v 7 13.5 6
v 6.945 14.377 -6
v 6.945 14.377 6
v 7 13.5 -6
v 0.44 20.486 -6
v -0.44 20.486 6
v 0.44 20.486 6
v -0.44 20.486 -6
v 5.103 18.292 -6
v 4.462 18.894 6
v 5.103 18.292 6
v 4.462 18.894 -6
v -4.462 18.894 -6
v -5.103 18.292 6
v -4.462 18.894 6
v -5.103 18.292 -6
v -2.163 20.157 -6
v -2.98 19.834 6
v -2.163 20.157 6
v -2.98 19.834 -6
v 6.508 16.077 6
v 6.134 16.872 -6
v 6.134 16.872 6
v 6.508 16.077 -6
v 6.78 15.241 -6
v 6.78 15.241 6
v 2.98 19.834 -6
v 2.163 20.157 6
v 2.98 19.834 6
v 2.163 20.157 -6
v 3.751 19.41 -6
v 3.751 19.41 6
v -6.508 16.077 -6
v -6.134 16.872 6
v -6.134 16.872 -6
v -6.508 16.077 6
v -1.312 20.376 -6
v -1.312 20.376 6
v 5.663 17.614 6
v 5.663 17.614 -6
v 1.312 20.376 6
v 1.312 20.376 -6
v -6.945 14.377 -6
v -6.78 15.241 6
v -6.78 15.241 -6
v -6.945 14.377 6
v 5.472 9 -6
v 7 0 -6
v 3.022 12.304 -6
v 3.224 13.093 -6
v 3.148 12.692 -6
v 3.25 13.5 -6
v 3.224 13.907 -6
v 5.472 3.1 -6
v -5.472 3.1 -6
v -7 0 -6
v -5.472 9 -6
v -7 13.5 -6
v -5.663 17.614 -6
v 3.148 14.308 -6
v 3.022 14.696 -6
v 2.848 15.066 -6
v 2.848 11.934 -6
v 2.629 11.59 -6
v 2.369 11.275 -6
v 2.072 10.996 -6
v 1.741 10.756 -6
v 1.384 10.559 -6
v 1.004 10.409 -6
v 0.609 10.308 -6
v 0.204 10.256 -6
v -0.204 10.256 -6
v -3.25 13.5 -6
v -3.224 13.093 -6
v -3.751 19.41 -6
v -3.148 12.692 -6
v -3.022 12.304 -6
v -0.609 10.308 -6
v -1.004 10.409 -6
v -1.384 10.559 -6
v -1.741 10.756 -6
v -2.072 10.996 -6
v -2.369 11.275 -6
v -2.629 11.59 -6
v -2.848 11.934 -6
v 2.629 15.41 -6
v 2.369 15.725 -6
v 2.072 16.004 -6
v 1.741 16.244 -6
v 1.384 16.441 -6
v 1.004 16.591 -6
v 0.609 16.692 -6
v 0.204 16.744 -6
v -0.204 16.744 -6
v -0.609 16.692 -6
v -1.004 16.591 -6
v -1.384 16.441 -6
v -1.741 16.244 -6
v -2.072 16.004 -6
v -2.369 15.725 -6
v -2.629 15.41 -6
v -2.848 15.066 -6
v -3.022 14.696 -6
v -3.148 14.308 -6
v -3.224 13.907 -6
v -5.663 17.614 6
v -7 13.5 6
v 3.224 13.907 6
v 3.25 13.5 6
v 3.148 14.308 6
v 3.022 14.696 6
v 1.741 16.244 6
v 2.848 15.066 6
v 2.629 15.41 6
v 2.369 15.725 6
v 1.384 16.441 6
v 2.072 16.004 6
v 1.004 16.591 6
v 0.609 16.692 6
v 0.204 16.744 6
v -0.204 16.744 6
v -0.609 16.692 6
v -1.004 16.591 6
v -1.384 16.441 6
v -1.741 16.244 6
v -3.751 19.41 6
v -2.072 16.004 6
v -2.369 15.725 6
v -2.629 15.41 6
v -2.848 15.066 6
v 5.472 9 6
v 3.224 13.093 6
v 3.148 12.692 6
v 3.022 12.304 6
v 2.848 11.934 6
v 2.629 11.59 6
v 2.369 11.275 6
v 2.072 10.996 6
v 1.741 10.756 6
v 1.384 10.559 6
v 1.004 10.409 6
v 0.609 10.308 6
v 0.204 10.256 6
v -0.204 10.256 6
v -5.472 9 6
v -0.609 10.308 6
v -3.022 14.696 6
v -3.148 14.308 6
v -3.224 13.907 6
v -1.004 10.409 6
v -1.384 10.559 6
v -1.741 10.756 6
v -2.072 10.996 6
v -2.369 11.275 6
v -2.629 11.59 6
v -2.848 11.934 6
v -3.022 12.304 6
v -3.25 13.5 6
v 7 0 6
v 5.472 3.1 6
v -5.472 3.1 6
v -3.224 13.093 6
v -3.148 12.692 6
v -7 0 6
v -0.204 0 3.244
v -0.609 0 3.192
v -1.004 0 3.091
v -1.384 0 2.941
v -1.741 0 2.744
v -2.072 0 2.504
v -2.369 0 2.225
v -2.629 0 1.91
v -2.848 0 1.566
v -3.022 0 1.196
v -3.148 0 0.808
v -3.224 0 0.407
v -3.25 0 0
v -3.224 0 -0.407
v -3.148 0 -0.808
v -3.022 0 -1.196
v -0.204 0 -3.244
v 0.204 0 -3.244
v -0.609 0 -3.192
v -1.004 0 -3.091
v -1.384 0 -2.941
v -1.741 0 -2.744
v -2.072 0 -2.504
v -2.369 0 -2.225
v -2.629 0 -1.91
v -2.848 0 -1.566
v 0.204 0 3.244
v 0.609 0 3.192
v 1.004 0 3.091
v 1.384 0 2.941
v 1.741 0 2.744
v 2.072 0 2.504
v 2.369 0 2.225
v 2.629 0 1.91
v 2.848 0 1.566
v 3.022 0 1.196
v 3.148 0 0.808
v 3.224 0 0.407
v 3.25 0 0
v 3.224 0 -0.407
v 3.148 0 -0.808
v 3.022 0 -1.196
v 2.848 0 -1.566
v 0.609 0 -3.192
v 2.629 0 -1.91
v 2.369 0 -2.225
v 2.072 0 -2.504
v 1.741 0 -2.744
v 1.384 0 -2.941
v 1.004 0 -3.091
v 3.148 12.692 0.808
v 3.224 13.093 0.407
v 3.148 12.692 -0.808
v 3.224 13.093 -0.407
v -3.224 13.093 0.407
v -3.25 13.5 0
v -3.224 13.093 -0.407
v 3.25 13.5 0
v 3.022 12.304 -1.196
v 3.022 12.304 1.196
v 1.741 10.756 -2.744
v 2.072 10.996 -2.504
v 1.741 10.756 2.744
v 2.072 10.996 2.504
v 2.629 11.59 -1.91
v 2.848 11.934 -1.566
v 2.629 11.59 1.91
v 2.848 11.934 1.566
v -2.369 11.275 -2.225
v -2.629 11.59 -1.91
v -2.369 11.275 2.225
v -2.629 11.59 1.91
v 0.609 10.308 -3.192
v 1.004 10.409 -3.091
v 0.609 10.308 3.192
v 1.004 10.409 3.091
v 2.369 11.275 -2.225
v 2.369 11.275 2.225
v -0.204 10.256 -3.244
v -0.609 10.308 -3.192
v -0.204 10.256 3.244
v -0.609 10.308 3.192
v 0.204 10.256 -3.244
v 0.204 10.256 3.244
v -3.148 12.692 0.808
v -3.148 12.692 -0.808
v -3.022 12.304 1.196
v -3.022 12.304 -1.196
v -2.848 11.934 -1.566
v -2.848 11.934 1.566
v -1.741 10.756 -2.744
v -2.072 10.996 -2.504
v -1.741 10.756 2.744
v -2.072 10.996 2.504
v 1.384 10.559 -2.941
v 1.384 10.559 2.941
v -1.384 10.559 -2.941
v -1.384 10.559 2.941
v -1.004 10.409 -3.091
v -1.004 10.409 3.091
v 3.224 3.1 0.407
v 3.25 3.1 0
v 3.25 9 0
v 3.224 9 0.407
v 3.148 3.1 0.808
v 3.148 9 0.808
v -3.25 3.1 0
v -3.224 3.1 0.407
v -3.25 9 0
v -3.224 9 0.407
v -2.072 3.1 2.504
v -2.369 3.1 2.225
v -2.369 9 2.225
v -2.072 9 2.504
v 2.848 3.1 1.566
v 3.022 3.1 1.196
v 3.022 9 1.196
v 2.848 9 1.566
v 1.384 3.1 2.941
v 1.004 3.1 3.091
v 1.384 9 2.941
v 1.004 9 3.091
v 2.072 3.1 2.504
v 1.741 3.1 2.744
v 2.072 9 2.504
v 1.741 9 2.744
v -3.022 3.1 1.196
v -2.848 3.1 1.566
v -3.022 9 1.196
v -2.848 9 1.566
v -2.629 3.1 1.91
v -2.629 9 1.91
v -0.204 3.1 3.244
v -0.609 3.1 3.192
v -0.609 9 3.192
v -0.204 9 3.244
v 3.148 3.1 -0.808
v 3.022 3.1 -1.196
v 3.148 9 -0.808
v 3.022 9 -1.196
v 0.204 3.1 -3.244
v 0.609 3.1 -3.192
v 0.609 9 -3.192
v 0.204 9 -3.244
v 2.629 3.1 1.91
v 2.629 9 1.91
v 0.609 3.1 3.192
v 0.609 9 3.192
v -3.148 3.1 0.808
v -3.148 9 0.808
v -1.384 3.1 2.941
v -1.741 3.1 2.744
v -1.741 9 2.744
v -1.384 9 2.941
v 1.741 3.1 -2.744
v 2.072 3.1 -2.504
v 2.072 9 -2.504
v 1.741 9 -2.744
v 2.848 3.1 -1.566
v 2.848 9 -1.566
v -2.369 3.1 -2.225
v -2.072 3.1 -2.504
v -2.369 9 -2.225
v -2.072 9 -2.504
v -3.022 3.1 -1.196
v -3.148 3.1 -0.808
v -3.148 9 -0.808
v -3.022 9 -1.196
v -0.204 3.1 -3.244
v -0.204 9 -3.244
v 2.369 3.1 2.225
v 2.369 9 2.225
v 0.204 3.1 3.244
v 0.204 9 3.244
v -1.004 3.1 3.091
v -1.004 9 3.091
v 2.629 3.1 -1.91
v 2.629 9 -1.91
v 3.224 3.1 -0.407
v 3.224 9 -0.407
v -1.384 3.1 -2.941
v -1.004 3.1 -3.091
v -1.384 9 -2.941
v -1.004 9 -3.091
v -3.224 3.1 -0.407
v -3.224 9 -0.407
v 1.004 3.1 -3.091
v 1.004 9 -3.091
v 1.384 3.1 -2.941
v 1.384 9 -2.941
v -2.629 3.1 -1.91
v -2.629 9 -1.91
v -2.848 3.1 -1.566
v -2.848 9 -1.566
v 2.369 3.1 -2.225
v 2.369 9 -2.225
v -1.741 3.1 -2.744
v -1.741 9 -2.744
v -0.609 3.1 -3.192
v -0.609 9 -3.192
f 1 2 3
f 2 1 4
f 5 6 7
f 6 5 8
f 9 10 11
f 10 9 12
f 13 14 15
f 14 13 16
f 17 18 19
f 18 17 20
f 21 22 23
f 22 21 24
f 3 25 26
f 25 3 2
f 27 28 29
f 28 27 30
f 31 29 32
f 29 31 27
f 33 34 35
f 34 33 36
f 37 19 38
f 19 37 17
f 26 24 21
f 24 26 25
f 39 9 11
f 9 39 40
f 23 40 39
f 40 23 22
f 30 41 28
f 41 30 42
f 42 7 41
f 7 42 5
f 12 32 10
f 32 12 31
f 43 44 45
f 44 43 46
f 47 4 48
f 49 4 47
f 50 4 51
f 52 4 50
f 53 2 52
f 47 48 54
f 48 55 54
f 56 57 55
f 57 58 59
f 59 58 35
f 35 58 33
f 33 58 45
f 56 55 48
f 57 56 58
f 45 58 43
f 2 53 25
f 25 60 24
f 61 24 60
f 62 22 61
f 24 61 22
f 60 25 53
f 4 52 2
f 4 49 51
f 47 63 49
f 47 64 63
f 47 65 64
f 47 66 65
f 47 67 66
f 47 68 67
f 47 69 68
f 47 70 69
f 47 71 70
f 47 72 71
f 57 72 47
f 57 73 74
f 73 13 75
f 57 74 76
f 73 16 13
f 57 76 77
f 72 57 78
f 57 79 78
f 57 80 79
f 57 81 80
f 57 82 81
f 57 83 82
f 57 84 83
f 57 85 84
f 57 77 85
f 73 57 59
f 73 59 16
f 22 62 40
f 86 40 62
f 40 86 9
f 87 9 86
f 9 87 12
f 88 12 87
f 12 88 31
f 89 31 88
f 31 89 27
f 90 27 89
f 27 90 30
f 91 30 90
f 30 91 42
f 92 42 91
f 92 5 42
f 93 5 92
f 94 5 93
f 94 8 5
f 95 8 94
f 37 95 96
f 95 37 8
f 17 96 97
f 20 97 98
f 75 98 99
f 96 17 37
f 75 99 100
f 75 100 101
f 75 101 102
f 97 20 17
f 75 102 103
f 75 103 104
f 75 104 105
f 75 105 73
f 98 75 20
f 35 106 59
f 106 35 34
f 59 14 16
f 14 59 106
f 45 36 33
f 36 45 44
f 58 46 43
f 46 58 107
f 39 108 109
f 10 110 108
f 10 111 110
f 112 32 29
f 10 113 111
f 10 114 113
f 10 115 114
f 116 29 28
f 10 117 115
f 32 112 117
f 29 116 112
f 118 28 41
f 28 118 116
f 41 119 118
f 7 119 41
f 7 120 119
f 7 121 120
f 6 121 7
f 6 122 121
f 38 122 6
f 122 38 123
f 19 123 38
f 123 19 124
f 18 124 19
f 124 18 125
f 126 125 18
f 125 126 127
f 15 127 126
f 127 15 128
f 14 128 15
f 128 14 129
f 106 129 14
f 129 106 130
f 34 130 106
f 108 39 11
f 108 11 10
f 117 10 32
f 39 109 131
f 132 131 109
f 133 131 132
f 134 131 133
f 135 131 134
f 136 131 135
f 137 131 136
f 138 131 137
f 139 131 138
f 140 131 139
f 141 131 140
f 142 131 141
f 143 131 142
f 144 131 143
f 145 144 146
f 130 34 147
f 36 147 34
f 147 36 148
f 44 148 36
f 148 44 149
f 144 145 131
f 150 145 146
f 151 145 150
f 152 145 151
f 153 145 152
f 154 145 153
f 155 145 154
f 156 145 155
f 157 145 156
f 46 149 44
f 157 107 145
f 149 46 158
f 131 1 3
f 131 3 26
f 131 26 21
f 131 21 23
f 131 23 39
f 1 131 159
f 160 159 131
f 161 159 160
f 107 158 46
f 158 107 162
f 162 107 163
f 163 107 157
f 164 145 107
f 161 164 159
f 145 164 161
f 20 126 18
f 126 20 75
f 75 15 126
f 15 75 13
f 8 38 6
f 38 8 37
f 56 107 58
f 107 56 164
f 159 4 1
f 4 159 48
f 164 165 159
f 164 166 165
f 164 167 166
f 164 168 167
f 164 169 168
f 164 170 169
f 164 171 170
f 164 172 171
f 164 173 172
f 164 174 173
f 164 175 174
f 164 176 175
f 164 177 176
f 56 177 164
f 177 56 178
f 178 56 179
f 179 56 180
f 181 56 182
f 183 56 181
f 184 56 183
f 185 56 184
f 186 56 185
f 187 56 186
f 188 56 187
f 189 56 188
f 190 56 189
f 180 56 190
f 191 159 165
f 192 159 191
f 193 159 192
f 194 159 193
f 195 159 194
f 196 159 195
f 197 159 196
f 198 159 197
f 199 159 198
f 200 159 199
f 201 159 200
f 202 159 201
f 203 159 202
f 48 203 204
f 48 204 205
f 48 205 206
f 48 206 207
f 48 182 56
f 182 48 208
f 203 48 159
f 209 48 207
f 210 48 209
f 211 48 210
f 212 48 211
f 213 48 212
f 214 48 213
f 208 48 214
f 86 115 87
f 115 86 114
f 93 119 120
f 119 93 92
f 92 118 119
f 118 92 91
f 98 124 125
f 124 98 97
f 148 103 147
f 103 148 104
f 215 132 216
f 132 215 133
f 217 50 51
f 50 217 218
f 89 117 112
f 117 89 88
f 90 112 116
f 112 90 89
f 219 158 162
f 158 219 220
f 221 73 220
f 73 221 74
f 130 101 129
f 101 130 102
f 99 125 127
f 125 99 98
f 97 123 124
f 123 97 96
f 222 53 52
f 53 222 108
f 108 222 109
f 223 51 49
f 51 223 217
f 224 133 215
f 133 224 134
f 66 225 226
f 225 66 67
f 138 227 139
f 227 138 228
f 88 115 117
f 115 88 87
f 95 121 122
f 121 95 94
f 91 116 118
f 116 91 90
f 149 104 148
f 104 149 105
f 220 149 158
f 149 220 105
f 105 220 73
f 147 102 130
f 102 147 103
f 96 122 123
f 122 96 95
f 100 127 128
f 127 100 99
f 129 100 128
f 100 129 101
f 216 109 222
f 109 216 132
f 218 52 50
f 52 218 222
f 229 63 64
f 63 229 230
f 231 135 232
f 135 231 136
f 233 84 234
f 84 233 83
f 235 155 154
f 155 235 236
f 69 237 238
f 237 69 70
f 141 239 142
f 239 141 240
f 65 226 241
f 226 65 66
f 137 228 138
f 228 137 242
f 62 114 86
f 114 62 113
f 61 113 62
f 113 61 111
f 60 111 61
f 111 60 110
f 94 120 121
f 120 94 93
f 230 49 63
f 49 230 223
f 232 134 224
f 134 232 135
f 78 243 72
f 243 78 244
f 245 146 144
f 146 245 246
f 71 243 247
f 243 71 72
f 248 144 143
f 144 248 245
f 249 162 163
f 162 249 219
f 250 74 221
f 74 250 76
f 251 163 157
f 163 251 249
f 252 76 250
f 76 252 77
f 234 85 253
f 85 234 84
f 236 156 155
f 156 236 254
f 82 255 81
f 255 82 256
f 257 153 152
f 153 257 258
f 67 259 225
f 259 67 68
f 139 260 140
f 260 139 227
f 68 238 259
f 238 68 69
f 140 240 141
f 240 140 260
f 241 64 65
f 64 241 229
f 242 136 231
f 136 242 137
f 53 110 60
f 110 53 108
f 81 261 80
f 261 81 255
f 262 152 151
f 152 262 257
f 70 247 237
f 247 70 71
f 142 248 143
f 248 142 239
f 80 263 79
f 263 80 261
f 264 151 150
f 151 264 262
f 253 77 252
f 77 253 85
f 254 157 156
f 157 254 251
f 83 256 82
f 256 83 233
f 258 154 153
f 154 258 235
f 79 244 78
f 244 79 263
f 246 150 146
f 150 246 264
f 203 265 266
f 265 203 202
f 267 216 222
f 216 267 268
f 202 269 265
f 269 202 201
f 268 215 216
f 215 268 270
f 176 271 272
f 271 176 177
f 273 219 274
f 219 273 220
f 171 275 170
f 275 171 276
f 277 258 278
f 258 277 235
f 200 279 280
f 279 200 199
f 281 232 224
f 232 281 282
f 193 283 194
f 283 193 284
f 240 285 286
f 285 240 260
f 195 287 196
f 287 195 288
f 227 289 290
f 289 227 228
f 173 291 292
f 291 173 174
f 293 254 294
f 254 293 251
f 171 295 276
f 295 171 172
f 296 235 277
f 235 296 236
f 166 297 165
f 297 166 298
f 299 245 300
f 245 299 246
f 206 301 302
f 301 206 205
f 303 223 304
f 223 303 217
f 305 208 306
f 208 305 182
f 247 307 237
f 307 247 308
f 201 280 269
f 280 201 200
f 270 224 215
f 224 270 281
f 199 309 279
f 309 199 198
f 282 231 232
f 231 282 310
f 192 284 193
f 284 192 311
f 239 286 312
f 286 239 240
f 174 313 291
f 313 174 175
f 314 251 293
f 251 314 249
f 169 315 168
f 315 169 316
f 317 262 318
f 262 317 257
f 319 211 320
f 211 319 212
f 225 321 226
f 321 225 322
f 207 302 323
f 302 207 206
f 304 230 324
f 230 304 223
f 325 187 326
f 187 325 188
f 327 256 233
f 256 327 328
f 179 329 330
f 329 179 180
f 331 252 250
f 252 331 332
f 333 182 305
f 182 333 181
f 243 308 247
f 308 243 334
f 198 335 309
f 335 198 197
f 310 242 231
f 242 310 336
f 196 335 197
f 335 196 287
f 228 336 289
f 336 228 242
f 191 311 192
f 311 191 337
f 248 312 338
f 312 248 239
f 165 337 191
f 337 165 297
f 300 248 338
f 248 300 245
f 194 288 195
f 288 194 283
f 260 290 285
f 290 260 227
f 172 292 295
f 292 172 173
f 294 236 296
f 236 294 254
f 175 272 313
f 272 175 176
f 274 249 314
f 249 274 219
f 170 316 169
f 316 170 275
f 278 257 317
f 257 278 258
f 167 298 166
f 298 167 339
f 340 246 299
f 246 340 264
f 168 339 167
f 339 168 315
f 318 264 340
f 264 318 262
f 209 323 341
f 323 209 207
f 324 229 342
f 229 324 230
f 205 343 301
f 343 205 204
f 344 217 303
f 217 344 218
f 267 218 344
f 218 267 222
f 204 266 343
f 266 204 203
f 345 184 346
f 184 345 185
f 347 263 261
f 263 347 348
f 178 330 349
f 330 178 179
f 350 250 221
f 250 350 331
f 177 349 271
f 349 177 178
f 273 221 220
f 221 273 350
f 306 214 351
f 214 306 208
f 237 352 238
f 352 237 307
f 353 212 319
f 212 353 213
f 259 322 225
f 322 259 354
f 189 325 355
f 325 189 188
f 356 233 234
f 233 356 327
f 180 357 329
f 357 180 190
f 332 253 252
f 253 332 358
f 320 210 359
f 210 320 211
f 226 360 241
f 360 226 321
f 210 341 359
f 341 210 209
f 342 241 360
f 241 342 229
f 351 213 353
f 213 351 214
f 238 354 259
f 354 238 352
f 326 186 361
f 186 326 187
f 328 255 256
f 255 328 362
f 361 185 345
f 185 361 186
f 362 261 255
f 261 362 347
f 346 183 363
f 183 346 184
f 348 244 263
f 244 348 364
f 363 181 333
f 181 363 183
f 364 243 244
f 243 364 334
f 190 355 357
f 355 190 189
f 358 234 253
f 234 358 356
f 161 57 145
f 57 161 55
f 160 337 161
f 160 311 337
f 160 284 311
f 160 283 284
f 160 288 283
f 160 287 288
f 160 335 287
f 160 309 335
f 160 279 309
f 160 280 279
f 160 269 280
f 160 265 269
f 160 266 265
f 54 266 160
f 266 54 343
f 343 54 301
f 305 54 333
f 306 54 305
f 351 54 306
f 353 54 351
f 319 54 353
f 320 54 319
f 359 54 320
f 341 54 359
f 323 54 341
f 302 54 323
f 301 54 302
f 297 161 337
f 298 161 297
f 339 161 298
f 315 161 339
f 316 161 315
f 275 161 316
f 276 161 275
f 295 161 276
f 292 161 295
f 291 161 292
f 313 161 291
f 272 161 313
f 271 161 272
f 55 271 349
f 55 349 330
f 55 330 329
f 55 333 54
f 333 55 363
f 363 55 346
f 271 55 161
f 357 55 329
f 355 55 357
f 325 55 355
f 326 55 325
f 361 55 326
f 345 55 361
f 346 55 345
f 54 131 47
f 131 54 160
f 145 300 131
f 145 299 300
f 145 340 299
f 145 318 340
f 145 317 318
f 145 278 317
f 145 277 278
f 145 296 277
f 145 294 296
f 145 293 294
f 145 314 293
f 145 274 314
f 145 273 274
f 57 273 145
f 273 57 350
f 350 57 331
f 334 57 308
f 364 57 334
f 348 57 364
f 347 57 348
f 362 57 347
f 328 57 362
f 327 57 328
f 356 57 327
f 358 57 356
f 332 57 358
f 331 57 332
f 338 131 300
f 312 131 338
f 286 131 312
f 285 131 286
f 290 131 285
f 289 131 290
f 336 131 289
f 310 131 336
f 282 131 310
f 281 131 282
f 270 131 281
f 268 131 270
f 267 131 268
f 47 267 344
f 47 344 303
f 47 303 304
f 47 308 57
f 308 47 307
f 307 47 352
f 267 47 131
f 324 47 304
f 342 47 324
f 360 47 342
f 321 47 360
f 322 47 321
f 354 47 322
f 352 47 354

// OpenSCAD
$fn = 50;


difference() {
	union() {
		translate(v = [0, 13.5000000000, -6.0000000000]) {
			rotate(a = [0, 0, 0]) {
				cylinder(h = 12, r = 7.0000000000);
			}
		}
		translate(v = [-7.0000000000, 0, -6.0000000000]) {
			rotate(a = [0, 0, 0]) {
				cube(size = [14, 13.5000000000, 12]);
			}
		}
	}
	union() {
		translate(v = [0.0000000000, 13.5000000000, -6.0000000000]) {
			rotate(a = [0, 0, 0]) {
				translate(v = [0, 0, -50]) {
					rotate(a = [0, 0, 0]) {
						cylinder(h = 100, r = 3.2500000000);
					}
				}
			}
		}
		translate(v = [0.0000000000, 13.5000000000, -6.0000000000]) {
			rotate(a = [0, 0, 0]) {
				translate(v = [0, 0, -50]) {
					rotate(a = [0, 0, 0]) {
						cylinder(h = 100, r = 1.8000000000);
					}
				}
			}
		}
		translate(v = [0.0000000000, 13.5000000000, 0]) {
			rotate(a = [90, 0, 0]) {
				cylinder(h = 13.5000000000, r = 3.2500000000);
			}
		}
		translate(v = [-5.4716204506, 9, -25]) {
			rotate(a = [90, 0, 0]) {
				cube(size = [10.9432409012, 100, 5.9000000000]);
			}
		}
	}
}
